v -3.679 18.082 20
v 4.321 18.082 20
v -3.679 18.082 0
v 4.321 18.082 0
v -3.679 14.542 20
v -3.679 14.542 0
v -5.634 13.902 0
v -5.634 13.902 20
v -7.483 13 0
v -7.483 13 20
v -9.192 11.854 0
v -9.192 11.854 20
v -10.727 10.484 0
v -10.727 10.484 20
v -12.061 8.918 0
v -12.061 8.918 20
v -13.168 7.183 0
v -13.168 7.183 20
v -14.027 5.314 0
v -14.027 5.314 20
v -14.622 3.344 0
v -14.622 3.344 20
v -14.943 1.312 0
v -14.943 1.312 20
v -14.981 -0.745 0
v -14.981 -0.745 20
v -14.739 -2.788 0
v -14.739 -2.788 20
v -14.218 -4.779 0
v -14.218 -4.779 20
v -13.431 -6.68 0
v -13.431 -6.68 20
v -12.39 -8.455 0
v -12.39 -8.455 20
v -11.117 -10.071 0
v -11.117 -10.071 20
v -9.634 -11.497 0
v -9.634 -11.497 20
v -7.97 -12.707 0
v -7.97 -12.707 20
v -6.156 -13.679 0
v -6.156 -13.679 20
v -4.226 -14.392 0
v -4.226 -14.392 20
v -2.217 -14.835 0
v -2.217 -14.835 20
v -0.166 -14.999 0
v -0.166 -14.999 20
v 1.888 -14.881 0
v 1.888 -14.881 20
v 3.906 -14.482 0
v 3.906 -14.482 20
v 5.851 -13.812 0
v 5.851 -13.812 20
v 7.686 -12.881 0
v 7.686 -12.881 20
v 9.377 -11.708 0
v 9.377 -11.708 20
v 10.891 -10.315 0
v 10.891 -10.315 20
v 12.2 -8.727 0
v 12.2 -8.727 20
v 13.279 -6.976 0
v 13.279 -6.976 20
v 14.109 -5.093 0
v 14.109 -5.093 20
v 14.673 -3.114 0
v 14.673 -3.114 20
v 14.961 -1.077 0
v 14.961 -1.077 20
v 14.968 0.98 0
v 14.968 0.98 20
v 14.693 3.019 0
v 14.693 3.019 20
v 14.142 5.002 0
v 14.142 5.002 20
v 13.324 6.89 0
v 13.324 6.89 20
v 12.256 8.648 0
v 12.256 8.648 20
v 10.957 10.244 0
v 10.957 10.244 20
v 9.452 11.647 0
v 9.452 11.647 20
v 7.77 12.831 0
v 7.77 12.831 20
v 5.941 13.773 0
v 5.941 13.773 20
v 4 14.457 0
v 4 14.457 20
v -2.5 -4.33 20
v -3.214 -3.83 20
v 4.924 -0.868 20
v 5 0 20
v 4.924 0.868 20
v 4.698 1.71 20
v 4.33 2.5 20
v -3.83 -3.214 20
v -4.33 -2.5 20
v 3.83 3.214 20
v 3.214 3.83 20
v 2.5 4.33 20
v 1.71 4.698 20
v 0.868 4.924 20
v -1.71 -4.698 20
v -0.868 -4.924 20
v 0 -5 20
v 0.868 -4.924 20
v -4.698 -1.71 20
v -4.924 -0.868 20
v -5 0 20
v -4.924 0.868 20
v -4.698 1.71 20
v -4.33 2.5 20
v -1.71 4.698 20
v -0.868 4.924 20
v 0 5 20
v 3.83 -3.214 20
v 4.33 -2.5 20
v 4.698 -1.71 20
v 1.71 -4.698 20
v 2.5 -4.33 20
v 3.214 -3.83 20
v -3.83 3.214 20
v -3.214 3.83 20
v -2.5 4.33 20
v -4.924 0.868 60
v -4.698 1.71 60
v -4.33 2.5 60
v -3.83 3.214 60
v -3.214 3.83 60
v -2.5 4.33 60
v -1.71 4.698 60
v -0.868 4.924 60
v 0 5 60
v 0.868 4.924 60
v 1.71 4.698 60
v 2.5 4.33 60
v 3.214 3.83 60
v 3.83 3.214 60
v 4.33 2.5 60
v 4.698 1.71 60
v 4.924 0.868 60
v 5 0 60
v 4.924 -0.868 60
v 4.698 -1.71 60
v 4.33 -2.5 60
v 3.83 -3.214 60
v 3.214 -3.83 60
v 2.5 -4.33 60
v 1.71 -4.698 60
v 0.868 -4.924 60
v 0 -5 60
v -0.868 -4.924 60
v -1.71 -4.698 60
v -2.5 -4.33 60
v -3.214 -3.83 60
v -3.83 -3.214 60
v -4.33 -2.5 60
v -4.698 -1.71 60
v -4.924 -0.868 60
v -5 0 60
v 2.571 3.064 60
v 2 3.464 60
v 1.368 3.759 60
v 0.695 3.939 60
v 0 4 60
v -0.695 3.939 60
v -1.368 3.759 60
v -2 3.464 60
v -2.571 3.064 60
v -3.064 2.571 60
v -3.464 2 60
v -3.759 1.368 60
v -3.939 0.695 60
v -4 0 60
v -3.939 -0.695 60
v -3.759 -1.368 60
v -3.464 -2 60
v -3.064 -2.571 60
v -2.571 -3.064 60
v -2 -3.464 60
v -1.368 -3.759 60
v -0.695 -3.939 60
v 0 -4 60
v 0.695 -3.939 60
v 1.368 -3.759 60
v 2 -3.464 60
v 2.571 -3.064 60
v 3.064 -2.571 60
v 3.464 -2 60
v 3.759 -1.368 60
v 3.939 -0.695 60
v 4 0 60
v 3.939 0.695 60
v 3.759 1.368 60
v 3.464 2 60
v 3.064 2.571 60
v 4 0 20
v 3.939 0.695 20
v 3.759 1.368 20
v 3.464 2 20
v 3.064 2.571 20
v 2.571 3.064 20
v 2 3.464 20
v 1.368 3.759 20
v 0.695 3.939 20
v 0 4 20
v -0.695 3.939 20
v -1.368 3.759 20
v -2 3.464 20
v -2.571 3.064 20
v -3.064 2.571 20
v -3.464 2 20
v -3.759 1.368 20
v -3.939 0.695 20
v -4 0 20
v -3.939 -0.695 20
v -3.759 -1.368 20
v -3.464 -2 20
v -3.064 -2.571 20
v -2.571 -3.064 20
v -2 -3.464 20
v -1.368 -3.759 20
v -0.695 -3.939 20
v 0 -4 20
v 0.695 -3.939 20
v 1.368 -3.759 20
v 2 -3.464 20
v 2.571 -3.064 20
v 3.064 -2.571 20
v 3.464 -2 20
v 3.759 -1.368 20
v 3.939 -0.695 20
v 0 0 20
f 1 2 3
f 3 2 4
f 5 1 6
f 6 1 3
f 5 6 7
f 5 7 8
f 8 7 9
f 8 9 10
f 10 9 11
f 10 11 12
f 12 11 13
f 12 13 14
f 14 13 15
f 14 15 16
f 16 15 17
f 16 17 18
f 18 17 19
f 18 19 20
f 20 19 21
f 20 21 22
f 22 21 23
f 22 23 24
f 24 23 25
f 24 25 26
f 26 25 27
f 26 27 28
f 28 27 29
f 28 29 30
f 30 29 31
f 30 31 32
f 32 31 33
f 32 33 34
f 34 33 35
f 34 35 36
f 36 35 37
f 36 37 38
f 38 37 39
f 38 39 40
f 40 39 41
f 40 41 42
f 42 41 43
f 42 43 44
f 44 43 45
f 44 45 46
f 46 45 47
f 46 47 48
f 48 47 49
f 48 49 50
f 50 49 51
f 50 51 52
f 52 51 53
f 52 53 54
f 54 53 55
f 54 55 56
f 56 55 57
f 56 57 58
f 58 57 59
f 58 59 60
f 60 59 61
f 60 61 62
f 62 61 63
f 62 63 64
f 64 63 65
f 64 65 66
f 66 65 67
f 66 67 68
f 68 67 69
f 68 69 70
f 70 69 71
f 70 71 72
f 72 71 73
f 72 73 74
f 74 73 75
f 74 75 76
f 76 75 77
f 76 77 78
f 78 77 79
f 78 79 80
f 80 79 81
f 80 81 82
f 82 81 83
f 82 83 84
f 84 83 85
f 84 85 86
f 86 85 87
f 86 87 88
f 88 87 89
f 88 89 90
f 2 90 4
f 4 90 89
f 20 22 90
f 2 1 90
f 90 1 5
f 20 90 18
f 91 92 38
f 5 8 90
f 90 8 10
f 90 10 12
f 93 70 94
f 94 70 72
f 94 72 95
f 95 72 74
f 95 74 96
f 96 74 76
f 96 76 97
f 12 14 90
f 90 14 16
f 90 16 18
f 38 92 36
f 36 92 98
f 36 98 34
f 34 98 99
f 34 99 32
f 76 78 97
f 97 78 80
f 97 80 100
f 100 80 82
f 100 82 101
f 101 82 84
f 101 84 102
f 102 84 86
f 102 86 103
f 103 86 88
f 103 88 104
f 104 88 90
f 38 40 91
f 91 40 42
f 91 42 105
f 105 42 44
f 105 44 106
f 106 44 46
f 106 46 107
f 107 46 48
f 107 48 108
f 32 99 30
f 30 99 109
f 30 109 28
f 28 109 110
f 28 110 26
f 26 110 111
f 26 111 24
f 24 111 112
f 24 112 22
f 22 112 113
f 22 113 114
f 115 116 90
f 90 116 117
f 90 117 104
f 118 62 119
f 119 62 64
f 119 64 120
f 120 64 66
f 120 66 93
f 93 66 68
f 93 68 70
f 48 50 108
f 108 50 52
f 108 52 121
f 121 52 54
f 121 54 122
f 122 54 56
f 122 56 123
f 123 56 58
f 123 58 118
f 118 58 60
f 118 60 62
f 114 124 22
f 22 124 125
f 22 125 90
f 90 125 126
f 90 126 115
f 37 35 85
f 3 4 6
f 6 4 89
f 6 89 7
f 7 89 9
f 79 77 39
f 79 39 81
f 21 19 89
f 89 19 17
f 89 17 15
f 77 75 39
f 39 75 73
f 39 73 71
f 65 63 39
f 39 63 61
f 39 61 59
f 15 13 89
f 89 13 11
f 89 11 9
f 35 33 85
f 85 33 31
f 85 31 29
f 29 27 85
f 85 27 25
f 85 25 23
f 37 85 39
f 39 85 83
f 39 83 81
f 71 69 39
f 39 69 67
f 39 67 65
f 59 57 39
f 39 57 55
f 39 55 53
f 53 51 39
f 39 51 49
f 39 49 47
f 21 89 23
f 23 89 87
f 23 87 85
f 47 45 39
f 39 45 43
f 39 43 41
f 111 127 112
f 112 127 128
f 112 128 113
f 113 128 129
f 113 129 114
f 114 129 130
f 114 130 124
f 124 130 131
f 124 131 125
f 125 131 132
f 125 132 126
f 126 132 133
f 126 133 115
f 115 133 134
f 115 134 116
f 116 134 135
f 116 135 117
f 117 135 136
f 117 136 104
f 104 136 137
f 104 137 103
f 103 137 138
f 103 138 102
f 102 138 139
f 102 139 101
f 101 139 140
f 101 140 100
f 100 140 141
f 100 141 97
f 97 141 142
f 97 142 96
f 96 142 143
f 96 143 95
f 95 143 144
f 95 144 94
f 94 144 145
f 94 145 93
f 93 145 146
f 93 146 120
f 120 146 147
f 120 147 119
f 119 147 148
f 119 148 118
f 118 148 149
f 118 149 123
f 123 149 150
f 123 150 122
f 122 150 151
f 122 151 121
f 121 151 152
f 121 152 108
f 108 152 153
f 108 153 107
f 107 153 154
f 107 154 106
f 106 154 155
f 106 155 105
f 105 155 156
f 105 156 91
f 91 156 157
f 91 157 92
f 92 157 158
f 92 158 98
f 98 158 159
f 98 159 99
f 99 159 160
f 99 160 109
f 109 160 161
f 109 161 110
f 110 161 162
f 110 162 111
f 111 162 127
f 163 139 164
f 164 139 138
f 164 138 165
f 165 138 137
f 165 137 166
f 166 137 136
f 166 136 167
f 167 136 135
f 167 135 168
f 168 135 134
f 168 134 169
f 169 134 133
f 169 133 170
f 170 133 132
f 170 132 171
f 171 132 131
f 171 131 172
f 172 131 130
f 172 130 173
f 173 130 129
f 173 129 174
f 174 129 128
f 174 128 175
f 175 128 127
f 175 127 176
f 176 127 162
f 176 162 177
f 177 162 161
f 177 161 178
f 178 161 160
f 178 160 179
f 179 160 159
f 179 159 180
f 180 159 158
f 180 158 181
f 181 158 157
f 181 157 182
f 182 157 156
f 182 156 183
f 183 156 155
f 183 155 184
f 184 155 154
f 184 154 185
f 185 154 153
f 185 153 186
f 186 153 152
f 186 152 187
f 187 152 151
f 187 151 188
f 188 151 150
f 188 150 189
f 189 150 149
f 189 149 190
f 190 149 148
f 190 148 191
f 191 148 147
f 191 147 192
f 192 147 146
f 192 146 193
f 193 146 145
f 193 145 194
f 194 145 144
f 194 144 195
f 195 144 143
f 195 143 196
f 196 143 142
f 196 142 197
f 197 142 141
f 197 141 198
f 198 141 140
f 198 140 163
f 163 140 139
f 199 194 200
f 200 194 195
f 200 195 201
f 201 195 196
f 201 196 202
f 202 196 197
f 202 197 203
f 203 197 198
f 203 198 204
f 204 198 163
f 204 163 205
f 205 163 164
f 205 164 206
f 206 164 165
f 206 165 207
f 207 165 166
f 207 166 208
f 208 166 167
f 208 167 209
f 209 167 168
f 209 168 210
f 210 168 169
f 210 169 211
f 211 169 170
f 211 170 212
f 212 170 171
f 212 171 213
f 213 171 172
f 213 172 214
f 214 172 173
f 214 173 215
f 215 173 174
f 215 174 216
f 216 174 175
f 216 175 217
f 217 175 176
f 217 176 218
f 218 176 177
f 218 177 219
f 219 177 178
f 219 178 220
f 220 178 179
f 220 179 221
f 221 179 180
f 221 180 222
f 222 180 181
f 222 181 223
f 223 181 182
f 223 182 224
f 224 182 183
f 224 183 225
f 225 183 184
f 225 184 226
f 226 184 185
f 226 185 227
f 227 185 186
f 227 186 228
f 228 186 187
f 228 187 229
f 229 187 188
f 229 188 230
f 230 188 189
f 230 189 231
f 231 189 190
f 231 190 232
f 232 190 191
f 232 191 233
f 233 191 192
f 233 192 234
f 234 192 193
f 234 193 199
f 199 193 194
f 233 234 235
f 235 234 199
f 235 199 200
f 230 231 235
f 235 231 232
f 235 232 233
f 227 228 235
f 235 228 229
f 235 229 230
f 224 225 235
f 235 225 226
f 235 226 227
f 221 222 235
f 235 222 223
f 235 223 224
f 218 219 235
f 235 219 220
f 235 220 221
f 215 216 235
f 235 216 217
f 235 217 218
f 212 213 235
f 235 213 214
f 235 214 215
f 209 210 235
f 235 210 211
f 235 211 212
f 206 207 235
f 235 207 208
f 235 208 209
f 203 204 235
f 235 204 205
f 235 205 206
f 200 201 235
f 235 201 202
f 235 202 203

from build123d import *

# Parameters (mm, degrees)
BOSS_EXTRUDE2_DEPTH = 20
SKETCH2_R           = 5
BOSS_EXTRUDE3_DEPTH = 40
SKETCH8_R           = 4
CUT_EXTRUDE1_DEPTH  = 40


with BuildPart() as part:
    # Sketch1 → Boss-Extrude2 (new body)
    with BuildSketch(Plane.XY):
        with BuildLine():
            Line((-3.678627735, 14.541928964), (-3.678627735, 18.081928964))
            Line((-3.678627735, 18.081928964), (4.321372265, 18.081928964))
            Line((4.321372265, 18.081928964), (4, 14.456832295))
            ThreePointArc((4, 14.456832295), (-0.166223927, -14.999078959), (-3.678627735, 14.541928964))
        make_face()
    extrude(amount=BOSS_EXTRUDE2_DEPTH)

    # Sketch2 → Boss-Extrude3 (add)
    with BuildSketch(Plane.XY.offset(20)):
        Circle(SKETCH2_R)
    extrude(amount=BOSS_EXTRUDE3_DEPTH)

    # Sketch8 → Cut-Extrude1 (cut)
    with BuildSketch(Plane.XY.offset(60)):
        Circle(SKETCH8_R)
    extrude(amount=-CUT_EXTRUDE1_DEPTH, mode=Mode.SUBTRACT)


solid = part.part
